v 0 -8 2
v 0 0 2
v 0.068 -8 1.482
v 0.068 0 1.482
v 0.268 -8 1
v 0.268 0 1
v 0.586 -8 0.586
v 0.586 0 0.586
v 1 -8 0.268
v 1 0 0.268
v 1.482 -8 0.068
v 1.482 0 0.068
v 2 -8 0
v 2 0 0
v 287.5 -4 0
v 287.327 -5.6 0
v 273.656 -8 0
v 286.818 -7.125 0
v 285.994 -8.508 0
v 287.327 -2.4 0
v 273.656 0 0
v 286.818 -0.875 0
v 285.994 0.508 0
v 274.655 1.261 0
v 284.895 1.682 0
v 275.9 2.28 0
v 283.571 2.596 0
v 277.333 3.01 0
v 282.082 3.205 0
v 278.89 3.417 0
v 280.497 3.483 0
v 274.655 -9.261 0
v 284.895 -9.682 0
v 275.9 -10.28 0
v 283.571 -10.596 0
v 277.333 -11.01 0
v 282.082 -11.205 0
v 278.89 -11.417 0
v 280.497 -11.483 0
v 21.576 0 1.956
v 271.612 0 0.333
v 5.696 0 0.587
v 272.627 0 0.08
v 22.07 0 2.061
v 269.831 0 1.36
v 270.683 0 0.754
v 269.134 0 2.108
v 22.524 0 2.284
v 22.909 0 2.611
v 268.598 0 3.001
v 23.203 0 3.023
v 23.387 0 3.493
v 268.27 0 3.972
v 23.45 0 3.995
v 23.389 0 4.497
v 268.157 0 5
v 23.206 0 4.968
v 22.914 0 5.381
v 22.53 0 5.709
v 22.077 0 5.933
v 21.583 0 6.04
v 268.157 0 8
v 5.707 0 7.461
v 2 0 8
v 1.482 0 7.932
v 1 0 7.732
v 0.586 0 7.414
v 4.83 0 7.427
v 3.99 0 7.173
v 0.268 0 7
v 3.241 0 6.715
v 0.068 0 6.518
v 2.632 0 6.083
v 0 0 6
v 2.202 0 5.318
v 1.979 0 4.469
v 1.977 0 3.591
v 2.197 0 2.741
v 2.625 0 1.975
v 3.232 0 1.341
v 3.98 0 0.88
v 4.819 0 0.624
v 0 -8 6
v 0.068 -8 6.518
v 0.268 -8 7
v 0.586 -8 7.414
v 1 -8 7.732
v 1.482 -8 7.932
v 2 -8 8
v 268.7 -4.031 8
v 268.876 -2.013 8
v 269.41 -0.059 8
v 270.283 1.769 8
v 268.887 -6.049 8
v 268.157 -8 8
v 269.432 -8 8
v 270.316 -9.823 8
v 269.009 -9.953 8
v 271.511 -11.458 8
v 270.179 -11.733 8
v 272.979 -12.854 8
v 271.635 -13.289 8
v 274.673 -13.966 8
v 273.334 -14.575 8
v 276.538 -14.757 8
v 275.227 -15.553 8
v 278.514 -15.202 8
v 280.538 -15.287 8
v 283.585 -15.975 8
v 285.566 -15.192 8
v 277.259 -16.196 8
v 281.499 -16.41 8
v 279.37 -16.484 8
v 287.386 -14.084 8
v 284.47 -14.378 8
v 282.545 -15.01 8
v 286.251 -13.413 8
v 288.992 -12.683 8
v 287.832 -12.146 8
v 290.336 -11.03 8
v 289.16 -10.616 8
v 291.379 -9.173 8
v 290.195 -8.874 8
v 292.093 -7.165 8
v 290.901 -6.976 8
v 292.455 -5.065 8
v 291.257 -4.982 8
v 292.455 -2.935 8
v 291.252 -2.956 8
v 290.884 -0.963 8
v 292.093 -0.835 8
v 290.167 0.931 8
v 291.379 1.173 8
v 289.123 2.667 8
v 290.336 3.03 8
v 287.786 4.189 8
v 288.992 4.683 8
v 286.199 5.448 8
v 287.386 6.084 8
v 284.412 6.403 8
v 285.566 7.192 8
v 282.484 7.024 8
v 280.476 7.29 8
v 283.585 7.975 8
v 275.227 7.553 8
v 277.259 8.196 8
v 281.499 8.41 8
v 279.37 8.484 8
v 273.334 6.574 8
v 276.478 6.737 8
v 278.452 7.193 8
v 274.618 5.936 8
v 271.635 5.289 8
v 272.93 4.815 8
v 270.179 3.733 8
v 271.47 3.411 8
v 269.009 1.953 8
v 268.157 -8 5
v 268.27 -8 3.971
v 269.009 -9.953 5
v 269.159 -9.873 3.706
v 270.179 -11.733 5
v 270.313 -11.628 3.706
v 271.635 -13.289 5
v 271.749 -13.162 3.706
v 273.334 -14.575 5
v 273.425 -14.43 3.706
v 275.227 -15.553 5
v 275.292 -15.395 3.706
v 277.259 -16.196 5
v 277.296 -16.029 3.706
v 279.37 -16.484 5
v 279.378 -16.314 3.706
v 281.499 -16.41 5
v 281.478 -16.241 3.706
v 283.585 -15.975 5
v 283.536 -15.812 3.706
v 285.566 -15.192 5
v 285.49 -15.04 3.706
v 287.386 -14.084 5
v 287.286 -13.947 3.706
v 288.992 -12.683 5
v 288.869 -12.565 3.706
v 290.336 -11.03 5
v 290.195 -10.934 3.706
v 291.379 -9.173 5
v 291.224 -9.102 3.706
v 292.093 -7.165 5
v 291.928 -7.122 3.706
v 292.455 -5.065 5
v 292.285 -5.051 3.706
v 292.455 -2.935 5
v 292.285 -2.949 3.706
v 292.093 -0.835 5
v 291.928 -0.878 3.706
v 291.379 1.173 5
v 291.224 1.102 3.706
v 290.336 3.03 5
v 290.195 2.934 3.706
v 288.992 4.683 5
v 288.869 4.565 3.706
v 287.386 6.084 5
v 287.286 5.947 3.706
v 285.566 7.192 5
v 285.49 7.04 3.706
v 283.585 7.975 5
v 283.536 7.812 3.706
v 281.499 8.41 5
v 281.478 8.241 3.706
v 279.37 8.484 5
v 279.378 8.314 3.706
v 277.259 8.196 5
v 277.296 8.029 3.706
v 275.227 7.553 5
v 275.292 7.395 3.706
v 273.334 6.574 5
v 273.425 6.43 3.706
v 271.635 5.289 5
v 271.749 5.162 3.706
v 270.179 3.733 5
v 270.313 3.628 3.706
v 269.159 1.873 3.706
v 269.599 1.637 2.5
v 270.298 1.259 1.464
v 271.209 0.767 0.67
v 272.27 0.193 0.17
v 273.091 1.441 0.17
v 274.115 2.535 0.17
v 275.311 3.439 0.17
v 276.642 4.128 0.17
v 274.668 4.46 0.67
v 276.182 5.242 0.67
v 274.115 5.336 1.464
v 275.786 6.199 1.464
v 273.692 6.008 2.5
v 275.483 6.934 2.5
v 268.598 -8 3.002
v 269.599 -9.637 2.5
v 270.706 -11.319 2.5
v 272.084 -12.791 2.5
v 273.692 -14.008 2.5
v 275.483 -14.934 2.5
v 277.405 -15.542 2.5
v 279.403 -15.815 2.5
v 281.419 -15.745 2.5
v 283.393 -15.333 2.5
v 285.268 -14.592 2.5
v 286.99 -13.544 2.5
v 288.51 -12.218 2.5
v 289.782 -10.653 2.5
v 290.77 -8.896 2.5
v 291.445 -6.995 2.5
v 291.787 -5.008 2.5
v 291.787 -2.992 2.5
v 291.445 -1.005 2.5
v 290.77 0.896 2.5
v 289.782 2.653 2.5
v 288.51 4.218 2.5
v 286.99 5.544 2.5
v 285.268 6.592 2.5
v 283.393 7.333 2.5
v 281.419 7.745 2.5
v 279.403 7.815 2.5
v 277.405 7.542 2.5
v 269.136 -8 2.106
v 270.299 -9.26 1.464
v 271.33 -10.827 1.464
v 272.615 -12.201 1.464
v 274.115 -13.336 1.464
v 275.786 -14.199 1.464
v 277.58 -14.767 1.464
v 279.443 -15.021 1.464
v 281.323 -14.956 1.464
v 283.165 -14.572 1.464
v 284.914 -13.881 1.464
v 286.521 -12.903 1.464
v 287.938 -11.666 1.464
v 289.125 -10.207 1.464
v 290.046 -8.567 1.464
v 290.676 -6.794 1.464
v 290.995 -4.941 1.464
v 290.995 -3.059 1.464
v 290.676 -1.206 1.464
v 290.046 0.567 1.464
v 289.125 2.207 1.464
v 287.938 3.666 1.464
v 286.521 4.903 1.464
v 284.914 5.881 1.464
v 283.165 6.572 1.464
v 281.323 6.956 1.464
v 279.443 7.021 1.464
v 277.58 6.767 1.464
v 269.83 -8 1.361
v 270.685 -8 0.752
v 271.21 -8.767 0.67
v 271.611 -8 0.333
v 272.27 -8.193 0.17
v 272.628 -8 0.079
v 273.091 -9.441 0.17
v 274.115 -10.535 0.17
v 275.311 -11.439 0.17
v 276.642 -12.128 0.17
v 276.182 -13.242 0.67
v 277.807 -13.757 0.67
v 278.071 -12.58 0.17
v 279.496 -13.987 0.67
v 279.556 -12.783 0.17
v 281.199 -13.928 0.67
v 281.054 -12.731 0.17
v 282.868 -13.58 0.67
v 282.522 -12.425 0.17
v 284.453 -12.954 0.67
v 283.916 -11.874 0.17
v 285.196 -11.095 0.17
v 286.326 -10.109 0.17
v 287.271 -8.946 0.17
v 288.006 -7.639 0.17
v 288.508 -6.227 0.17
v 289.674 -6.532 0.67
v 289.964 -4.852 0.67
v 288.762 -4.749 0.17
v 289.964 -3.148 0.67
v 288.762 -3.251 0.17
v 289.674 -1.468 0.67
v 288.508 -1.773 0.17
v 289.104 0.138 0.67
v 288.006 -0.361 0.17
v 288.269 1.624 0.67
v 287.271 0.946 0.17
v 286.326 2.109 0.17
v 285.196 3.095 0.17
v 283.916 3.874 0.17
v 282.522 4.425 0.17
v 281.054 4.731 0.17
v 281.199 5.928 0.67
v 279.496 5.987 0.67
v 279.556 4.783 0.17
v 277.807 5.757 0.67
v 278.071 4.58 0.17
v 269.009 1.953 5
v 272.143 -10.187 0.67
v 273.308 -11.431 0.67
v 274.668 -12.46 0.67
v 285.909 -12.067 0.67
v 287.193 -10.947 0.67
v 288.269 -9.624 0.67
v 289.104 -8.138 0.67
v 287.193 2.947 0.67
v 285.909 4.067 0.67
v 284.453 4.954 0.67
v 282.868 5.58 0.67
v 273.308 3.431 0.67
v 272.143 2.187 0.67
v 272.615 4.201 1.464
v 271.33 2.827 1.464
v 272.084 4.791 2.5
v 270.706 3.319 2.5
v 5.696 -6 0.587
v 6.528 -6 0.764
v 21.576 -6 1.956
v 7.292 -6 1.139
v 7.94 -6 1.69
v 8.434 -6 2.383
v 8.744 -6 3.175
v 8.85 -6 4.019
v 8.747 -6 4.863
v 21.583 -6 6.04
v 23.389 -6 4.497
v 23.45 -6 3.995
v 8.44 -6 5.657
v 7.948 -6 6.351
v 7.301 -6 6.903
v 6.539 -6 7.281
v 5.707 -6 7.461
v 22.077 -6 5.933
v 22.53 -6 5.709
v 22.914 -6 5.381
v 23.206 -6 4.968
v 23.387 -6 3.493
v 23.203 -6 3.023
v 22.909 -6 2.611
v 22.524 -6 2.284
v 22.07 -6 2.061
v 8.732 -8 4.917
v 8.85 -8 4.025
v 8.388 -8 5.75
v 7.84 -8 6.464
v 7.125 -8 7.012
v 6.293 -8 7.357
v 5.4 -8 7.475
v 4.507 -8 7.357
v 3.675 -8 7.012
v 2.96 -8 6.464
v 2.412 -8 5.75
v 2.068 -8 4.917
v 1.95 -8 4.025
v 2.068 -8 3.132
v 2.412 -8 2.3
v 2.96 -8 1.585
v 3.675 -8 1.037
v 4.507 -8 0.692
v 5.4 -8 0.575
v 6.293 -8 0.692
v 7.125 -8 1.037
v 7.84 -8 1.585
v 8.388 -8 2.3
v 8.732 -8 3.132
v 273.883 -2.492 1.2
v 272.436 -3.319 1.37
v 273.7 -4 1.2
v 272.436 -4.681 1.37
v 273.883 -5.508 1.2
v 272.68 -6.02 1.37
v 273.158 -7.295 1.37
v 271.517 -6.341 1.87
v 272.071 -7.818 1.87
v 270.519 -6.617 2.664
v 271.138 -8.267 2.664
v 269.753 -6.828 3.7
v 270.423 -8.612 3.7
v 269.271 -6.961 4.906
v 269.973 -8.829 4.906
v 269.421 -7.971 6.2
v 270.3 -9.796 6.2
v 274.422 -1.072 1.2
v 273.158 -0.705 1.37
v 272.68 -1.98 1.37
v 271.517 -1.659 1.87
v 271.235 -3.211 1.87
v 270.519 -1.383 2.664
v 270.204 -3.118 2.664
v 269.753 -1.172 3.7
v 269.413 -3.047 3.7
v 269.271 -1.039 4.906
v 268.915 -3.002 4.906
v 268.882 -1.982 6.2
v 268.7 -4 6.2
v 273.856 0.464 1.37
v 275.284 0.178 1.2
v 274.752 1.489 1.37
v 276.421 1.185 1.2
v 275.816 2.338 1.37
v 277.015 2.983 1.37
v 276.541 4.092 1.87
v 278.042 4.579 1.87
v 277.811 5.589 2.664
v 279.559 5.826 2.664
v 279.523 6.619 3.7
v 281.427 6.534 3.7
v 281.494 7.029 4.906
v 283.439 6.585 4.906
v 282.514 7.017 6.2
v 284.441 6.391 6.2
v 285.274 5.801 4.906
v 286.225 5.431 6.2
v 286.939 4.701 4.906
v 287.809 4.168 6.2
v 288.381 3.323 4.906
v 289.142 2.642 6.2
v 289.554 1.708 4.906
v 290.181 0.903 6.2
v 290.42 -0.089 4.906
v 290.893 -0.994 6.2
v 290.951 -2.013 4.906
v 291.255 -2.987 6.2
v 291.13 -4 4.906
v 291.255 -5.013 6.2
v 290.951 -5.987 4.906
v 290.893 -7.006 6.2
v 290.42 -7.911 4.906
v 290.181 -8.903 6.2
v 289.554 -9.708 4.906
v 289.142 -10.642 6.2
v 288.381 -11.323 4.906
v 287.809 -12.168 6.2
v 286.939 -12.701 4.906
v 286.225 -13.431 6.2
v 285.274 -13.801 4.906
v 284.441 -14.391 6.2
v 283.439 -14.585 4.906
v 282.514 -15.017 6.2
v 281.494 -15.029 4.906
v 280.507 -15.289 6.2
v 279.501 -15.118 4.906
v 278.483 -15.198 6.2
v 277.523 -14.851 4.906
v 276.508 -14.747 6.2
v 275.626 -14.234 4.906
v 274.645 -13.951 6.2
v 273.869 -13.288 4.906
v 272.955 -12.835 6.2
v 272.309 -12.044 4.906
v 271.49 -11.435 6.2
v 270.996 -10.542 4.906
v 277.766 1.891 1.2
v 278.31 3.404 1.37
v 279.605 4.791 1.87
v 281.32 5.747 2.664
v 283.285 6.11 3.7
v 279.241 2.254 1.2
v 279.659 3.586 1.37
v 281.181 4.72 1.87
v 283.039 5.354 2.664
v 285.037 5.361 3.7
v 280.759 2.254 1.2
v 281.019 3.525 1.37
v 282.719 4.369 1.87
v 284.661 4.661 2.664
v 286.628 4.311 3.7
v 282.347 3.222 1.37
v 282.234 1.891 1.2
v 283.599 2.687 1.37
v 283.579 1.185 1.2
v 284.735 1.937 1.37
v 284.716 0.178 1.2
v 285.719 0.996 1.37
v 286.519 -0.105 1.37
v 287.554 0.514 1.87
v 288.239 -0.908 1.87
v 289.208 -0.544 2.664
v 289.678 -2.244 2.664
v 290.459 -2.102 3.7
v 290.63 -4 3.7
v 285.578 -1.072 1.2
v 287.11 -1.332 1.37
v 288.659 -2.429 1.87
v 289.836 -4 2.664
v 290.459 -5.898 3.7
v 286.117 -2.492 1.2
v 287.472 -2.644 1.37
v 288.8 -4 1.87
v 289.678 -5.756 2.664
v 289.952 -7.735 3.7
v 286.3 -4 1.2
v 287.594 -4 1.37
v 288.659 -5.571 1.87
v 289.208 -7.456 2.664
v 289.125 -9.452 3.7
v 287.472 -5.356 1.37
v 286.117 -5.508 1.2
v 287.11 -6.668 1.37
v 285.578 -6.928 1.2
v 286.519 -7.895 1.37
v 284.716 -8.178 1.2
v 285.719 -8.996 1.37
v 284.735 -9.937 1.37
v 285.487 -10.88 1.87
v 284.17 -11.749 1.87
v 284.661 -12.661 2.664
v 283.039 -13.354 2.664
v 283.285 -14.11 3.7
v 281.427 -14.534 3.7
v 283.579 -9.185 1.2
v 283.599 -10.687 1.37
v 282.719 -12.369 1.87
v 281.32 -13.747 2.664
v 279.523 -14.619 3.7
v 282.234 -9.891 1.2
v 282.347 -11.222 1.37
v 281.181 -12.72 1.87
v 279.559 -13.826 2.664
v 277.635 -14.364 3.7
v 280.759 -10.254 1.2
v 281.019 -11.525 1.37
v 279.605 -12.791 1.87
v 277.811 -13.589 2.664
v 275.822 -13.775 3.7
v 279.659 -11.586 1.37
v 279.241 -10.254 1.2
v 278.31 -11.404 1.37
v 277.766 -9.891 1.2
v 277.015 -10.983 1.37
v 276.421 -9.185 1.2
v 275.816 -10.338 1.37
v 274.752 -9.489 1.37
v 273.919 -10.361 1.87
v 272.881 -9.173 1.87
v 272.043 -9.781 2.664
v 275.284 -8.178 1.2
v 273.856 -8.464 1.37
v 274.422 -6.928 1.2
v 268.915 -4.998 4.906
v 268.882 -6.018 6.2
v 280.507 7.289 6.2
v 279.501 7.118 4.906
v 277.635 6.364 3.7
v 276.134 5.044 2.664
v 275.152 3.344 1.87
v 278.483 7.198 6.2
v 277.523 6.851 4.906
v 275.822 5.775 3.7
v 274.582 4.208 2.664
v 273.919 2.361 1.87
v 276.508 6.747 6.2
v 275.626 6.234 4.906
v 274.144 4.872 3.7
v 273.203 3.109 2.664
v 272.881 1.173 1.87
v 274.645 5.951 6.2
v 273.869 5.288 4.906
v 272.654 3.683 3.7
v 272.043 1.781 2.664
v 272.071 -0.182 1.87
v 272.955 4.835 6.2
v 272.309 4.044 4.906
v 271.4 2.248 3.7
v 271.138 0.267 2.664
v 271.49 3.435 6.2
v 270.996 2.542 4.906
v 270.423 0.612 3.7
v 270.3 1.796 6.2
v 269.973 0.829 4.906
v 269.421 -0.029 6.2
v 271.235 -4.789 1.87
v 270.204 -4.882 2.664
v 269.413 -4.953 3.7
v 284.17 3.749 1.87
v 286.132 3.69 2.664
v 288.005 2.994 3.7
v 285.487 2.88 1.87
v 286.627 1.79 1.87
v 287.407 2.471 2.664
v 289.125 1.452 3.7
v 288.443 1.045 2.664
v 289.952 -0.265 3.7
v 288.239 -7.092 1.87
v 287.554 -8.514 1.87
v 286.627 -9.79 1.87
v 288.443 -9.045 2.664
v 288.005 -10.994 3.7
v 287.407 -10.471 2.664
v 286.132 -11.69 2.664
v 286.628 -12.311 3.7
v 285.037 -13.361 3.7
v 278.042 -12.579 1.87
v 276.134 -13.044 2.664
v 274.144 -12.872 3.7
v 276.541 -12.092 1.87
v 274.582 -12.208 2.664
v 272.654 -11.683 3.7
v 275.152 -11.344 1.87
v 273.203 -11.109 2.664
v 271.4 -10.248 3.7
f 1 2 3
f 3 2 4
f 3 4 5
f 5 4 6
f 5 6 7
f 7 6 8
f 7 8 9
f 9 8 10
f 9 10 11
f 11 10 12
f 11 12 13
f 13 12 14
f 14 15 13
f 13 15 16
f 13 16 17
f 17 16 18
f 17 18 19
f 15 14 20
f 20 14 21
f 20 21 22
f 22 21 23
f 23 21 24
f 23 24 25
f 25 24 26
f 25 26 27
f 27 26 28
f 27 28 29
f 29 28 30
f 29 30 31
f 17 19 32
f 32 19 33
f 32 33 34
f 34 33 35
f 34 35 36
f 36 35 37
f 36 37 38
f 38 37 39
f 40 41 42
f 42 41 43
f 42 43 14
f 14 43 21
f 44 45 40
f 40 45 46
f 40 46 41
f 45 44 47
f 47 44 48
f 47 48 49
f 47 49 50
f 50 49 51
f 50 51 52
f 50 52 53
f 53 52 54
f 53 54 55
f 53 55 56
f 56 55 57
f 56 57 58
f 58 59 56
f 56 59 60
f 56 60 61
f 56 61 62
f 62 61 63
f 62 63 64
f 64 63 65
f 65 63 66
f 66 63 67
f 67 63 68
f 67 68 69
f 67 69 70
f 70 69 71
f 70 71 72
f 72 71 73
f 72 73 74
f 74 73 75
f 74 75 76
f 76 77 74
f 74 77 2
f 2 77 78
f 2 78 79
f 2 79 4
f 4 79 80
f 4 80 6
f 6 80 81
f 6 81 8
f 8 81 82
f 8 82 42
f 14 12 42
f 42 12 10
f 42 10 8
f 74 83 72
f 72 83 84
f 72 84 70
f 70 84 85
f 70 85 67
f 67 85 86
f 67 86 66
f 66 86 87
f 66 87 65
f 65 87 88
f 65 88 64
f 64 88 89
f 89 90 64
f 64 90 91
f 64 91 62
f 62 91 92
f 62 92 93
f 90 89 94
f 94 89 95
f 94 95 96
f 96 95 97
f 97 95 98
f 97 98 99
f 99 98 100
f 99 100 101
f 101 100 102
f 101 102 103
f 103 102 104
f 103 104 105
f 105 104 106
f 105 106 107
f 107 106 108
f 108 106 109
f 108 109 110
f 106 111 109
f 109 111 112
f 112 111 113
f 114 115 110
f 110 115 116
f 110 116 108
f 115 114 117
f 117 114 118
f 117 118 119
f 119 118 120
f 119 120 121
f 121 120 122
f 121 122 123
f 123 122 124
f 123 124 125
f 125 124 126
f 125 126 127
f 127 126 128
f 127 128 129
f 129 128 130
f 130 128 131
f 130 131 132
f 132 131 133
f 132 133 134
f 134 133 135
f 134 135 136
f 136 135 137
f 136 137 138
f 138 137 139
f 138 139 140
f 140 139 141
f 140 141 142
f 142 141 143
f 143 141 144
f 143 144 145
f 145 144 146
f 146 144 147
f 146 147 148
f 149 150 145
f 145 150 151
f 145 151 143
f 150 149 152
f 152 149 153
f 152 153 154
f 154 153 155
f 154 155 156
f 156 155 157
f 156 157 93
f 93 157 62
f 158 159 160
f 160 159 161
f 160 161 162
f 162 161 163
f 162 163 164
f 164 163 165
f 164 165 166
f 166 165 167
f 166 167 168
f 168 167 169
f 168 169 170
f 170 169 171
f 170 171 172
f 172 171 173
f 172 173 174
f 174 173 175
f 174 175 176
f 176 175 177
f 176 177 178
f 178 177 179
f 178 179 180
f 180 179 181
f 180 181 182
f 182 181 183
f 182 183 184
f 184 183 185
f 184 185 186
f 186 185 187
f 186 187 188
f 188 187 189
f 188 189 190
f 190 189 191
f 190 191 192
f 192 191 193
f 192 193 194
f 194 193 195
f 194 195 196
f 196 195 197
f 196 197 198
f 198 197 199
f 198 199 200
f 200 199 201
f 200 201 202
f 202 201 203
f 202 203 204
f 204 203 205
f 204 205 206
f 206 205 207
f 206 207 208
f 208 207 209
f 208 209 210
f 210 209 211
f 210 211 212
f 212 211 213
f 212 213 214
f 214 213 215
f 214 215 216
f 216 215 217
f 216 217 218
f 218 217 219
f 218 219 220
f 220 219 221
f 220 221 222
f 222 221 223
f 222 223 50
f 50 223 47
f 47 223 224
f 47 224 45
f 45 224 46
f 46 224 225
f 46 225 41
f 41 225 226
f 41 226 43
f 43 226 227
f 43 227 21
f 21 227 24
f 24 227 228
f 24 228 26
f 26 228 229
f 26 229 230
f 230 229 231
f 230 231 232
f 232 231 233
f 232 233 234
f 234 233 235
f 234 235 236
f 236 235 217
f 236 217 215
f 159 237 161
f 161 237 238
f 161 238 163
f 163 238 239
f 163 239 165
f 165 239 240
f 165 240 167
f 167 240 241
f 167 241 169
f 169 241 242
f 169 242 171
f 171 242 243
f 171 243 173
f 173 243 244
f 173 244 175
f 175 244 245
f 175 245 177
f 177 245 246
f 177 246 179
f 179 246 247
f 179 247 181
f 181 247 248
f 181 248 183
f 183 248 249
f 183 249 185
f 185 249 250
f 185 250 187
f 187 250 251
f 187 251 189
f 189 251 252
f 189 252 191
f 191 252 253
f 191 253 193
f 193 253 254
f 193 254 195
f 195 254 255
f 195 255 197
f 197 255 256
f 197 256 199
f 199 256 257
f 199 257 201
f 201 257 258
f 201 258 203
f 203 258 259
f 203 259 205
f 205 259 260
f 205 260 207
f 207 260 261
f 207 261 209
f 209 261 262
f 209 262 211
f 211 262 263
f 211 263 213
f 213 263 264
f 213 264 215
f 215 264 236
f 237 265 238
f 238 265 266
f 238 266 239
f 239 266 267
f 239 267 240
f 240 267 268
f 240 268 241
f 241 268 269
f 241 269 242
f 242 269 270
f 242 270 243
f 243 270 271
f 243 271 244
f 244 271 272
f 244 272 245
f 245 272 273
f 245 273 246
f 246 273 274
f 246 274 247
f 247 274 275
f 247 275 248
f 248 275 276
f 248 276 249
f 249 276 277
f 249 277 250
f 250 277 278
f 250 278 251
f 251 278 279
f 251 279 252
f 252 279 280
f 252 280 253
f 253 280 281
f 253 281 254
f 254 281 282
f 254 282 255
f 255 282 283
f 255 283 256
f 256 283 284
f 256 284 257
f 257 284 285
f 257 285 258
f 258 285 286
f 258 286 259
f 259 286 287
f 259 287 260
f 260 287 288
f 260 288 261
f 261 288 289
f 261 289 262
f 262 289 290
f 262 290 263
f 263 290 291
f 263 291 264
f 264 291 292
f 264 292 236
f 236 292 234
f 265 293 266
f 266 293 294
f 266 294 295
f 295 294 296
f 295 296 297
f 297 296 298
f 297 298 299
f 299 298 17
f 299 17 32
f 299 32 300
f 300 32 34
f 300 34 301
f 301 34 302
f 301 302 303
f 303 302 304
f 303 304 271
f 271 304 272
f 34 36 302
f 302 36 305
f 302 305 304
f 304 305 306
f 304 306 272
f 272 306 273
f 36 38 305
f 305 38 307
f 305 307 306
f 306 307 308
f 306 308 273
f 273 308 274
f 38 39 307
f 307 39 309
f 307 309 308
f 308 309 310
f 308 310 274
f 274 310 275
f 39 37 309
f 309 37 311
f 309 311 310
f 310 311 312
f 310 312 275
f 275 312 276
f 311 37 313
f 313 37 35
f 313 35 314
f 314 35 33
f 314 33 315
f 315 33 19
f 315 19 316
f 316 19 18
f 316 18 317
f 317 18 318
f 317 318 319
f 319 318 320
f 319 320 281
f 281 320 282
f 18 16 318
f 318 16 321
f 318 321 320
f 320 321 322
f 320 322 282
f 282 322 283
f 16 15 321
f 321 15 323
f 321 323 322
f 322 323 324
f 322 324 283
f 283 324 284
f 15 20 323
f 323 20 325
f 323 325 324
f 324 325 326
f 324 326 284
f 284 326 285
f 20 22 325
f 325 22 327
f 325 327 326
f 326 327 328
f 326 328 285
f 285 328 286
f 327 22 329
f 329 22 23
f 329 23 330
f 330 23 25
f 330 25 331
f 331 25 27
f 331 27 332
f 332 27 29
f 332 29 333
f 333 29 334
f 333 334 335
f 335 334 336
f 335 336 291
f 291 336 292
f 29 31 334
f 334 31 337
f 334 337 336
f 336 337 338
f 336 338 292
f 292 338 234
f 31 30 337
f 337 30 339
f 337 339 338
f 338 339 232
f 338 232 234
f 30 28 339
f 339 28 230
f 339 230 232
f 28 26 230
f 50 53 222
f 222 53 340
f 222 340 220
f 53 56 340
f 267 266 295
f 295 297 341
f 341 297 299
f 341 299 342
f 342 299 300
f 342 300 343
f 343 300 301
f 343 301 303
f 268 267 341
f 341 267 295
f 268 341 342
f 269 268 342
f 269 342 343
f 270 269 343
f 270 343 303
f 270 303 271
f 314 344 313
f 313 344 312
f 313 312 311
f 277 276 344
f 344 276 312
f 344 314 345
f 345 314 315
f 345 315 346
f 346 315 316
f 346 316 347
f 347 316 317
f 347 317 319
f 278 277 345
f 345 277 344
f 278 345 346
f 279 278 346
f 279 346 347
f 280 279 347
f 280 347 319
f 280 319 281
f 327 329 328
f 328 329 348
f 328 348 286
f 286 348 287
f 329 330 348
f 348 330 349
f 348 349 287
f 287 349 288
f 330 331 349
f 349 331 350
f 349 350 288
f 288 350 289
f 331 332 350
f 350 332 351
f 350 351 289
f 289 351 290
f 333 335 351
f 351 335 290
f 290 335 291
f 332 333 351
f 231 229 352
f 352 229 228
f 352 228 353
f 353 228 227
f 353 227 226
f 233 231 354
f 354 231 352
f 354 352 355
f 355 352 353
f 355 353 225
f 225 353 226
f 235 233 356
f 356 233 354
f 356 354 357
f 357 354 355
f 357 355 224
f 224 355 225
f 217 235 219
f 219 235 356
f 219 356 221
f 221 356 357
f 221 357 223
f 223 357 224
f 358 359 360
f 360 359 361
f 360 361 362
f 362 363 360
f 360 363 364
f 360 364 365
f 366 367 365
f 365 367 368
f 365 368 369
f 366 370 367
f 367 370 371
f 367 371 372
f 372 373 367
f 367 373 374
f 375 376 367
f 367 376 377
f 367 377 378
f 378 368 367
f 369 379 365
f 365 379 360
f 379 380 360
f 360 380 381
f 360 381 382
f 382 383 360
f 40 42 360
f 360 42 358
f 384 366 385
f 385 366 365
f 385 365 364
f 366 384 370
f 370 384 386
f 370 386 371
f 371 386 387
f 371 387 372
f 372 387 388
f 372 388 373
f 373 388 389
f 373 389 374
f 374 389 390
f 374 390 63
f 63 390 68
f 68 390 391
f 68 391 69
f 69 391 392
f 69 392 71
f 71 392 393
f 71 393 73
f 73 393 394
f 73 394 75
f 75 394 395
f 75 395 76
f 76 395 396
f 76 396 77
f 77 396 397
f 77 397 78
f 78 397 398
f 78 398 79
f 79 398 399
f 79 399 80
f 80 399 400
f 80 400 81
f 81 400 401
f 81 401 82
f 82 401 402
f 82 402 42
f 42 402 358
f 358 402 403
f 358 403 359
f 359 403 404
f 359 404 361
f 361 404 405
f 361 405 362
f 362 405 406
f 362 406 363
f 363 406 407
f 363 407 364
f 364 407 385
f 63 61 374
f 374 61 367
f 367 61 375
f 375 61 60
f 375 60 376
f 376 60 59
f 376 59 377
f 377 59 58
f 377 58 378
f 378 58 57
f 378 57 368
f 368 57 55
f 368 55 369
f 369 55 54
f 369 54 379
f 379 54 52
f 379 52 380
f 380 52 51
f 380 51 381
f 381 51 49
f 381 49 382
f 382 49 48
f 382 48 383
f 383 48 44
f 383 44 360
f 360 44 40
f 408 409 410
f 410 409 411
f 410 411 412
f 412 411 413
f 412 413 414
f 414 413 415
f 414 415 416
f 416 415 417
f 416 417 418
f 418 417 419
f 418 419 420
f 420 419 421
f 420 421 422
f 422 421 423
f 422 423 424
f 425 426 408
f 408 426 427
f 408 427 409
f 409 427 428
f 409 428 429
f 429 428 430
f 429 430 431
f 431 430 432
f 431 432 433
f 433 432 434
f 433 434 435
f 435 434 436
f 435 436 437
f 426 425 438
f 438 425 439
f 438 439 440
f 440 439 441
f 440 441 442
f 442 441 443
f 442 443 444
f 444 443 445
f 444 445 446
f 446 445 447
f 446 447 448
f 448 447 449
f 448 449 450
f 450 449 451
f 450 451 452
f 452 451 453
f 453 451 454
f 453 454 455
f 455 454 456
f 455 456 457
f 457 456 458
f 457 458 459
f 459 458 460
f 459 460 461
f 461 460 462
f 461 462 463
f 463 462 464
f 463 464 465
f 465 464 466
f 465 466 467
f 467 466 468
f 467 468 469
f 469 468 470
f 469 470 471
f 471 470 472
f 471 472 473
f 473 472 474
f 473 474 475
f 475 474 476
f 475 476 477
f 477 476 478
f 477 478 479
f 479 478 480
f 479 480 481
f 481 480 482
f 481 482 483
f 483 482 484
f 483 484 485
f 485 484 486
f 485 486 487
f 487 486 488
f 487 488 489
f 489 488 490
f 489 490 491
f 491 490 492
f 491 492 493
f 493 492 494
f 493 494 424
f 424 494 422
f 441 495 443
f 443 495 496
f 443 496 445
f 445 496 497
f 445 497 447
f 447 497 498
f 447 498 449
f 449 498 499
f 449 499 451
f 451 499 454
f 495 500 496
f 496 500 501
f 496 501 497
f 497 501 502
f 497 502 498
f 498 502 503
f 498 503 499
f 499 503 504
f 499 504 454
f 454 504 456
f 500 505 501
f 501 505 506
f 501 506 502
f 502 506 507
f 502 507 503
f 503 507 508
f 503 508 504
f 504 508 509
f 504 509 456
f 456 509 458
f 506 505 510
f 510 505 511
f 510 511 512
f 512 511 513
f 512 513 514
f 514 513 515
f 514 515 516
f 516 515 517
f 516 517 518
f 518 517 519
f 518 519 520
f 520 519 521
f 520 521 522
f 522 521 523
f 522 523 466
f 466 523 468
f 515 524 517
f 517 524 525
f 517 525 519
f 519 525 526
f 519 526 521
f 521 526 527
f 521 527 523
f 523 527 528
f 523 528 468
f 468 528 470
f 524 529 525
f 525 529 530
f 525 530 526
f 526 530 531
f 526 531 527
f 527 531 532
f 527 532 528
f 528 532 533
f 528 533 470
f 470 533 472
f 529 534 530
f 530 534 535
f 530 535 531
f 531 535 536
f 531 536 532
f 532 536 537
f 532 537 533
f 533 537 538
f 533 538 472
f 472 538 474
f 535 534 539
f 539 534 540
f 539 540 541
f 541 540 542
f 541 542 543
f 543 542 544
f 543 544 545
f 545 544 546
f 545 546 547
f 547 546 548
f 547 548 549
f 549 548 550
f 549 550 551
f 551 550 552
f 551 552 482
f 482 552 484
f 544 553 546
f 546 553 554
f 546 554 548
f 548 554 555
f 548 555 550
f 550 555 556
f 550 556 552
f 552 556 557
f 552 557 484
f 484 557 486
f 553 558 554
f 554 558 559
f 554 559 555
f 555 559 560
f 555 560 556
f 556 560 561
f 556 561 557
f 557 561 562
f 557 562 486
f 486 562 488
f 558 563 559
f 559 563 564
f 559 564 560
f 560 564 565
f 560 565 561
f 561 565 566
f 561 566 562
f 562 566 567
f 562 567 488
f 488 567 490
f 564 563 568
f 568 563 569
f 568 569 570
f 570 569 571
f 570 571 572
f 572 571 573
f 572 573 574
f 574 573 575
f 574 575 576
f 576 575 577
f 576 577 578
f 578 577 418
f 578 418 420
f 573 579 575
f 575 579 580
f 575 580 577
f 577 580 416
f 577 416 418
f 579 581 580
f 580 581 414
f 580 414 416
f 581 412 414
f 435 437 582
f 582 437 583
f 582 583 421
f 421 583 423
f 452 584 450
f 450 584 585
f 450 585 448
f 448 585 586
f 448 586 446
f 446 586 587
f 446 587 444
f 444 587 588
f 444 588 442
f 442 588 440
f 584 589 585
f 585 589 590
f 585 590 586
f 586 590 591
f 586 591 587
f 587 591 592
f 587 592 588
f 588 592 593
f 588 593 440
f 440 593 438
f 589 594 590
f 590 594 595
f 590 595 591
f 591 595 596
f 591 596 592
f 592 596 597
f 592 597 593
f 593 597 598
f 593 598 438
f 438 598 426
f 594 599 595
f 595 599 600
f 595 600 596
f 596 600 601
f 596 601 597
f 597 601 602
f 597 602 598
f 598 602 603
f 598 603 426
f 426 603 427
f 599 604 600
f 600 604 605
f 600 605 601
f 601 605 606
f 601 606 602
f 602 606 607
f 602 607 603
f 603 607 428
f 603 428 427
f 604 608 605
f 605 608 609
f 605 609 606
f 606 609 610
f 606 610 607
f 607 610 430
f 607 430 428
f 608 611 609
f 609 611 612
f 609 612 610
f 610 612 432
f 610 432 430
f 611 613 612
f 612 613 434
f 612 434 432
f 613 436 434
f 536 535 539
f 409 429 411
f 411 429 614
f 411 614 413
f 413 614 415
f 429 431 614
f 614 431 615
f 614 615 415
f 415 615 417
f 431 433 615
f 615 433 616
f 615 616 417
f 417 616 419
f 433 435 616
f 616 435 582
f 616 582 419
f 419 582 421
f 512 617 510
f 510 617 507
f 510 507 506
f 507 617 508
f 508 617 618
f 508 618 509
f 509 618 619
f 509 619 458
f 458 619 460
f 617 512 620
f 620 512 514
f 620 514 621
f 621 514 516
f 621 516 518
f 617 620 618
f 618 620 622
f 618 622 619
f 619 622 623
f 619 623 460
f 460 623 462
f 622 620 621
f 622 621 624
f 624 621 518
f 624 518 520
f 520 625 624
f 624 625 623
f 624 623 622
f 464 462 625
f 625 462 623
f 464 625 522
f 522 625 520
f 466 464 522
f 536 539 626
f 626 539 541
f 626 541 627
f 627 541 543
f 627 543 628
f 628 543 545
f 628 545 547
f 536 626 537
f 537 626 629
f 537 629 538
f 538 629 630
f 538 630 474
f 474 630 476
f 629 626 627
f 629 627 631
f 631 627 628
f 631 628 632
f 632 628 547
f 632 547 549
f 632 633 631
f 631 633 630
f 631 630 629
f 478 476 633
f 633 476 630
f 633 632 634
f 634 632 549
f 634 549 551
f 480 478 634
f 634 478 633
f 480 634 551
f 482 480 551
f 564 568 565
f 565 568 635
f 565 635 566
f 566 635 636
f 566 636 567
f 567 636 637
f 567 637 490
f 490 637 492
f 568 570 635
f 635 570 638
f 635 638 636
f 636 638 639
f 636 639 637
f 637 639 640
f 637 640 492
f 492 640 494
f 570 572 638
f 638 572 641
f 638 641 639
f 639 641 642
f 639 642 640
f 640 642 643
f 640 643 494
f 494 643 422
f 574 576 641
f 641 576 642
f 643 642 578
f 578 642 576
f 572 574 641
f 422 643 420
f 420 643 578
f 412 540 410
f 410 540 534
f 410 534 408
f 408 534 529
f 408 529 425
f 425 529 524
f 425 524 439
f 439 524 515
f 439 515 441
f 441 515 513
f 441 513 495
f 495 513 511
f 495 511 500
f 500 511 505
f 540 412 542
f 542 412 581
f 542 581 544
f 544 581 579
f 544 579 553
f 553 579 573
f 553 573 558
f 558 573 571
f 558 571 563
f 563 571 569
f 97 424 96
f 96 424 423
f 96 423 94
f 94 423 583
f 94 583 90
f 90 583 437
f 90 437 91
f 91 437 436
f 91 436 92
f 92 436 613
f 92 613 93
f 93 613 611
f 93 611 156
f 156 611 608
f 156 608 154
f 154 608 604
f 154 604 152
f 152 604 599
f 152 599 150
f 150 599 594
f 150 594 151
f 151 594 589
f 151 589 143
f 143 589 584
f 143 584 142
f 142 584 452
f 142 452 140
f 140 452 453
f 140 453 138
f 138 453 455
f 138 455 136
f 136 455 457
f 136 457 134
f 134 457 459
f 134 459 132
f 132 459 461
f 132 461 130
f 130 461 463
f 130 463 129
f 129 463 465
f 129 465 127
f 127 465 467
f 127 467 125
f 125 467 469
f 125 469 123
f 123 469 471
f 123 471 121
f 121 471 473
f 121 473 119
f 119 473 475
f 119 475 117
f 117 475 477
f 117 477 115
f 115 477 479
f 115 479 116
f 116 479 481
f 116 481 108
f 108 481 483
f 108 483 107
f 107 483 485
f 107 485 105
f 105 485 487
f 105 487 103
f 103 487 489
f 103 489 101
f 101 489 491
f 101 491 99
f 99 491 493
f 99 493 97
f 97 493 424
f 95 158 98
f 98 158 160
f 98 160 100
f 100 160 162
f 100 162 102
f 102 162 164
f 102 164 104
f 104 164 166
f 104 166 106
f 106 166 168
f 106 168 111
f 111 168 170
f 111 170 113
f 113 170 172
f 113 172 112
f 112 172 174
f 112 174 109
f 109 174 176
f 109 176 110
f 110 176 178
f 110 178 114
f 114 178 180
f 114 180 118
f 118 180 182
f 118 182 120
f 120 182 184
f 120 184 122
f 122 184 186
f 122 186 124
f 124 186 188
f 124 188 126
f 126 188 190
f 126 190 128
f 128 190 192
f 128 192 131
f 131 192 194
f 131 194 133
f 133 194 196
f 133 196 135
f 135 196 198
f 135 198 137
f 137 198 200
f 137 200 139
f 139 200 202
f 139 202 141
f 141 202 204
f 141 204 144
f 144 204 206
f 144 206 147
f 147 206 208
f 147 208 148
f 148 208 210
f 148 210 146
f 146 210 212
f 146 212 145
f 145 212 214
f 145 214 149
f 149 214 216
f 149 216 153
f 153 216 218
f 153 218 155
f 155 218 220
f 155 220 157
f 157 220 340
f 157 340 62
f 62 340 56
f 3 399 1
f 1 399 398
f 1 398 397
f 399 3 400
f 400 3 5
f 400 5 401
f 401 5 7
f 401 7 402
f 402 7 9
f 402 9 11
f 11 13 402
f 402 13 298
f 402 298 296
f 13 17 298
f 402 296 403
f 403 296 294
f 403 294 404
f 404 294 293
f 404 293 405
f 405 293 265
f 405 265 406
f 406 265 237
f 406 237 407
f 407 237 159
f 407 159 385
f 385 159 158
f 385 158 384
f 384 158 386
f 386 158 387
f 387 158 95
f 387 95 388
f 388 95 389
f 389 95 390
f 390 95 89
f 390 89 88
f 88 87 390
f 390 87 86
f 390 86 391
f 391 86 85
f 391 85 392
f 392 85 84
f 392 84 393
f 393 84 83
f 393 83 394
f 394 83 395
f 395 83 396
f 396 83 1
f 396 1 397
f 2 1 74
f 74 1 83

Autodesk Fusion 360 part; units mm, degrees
sketch "Sketch1" plane through (0, 0, 0) normal (0, 0, 1) x (1, 0, 0)
  line L0 (0, 0) -> (280, 0)
  line L1 (280, 0) -> (280, -8)
  line L2 (280, -8) -> (0, -8)
  line L3 (0, -8) -> (0, 0)
  dimension "d1" = 280
  dimension "d2" = 8
extrude "Extrude1" add sketch "Sketch1" along normal blind 8
sketch "Sketch2" plane through (0, 0, 0) normal (0, 0, 1) x (1, 0, 0)
  circle A0 centre (280, -4) radius 12.5
  circle A1 centre (280, -4) radius 11.3
  dimension "d5" = 25
  dimension "d6" = 22.6
extrude "Extrude2" add sketch "Sketch2" along normal blind 8
extrude "Extrude3" cut sketch "Sketch2" along normal blind 8 contours A1
extrude "Extrude4" add sketch "Sketch2" along normal blind 1.2 contours A1
fillet "Fillet1" radius 5 1 edges at (269.4647, 0.0863, 1.2)
sketch "Sketch4" plane through (0, 0, 0) normal (0, 1, 0) x (-1, 0, 0)
  line L0 (-268.1573, 8) -> (-268.1573, 0)
  line L1 (-268.1573, 0) -> (0, 0)
  line L2 (0, 0) -> (0, 8)
  line L3 (0, 8) -> (-268.1573, 8)
  circle A0 centre (-5.4, 4.0245) radius 3.45
  circle A1 centre (-21.4, 3.9983) radius 2.05
  line L4 (-21.5827, 6.0402) -> (-5.7075, 7.4608)
  line L5 (-5.6963, 0.5873) -> (-21.576, 1.9559)
  dimension "d20" = 6.9
  dimension "d21" = 5.4
  dimension "d22" = 4.1
  dimension "d23" = 16
extrude "Extrude5" cut sketch "Sketch4" against normal blind 6 contours A0 | A0 A1 L4 L5 | A1
extrude "Extrude6" cut sketch "Sketch4" against normal blind 8 contours A0
fillet "Fillet2" radius 5 1 edges at (292.5, -4, 0)
fillet "Fillet3" radius 2 1 edges at (0, -4, 8)
fillet "Fillet4" radius 2 1 edges at (0, -4, 0)
equation "d6 = 25 mm - ( 1.2 * 2 ) * 1 mm"
equation "d21 = 3.4 mm + 2 mm"
